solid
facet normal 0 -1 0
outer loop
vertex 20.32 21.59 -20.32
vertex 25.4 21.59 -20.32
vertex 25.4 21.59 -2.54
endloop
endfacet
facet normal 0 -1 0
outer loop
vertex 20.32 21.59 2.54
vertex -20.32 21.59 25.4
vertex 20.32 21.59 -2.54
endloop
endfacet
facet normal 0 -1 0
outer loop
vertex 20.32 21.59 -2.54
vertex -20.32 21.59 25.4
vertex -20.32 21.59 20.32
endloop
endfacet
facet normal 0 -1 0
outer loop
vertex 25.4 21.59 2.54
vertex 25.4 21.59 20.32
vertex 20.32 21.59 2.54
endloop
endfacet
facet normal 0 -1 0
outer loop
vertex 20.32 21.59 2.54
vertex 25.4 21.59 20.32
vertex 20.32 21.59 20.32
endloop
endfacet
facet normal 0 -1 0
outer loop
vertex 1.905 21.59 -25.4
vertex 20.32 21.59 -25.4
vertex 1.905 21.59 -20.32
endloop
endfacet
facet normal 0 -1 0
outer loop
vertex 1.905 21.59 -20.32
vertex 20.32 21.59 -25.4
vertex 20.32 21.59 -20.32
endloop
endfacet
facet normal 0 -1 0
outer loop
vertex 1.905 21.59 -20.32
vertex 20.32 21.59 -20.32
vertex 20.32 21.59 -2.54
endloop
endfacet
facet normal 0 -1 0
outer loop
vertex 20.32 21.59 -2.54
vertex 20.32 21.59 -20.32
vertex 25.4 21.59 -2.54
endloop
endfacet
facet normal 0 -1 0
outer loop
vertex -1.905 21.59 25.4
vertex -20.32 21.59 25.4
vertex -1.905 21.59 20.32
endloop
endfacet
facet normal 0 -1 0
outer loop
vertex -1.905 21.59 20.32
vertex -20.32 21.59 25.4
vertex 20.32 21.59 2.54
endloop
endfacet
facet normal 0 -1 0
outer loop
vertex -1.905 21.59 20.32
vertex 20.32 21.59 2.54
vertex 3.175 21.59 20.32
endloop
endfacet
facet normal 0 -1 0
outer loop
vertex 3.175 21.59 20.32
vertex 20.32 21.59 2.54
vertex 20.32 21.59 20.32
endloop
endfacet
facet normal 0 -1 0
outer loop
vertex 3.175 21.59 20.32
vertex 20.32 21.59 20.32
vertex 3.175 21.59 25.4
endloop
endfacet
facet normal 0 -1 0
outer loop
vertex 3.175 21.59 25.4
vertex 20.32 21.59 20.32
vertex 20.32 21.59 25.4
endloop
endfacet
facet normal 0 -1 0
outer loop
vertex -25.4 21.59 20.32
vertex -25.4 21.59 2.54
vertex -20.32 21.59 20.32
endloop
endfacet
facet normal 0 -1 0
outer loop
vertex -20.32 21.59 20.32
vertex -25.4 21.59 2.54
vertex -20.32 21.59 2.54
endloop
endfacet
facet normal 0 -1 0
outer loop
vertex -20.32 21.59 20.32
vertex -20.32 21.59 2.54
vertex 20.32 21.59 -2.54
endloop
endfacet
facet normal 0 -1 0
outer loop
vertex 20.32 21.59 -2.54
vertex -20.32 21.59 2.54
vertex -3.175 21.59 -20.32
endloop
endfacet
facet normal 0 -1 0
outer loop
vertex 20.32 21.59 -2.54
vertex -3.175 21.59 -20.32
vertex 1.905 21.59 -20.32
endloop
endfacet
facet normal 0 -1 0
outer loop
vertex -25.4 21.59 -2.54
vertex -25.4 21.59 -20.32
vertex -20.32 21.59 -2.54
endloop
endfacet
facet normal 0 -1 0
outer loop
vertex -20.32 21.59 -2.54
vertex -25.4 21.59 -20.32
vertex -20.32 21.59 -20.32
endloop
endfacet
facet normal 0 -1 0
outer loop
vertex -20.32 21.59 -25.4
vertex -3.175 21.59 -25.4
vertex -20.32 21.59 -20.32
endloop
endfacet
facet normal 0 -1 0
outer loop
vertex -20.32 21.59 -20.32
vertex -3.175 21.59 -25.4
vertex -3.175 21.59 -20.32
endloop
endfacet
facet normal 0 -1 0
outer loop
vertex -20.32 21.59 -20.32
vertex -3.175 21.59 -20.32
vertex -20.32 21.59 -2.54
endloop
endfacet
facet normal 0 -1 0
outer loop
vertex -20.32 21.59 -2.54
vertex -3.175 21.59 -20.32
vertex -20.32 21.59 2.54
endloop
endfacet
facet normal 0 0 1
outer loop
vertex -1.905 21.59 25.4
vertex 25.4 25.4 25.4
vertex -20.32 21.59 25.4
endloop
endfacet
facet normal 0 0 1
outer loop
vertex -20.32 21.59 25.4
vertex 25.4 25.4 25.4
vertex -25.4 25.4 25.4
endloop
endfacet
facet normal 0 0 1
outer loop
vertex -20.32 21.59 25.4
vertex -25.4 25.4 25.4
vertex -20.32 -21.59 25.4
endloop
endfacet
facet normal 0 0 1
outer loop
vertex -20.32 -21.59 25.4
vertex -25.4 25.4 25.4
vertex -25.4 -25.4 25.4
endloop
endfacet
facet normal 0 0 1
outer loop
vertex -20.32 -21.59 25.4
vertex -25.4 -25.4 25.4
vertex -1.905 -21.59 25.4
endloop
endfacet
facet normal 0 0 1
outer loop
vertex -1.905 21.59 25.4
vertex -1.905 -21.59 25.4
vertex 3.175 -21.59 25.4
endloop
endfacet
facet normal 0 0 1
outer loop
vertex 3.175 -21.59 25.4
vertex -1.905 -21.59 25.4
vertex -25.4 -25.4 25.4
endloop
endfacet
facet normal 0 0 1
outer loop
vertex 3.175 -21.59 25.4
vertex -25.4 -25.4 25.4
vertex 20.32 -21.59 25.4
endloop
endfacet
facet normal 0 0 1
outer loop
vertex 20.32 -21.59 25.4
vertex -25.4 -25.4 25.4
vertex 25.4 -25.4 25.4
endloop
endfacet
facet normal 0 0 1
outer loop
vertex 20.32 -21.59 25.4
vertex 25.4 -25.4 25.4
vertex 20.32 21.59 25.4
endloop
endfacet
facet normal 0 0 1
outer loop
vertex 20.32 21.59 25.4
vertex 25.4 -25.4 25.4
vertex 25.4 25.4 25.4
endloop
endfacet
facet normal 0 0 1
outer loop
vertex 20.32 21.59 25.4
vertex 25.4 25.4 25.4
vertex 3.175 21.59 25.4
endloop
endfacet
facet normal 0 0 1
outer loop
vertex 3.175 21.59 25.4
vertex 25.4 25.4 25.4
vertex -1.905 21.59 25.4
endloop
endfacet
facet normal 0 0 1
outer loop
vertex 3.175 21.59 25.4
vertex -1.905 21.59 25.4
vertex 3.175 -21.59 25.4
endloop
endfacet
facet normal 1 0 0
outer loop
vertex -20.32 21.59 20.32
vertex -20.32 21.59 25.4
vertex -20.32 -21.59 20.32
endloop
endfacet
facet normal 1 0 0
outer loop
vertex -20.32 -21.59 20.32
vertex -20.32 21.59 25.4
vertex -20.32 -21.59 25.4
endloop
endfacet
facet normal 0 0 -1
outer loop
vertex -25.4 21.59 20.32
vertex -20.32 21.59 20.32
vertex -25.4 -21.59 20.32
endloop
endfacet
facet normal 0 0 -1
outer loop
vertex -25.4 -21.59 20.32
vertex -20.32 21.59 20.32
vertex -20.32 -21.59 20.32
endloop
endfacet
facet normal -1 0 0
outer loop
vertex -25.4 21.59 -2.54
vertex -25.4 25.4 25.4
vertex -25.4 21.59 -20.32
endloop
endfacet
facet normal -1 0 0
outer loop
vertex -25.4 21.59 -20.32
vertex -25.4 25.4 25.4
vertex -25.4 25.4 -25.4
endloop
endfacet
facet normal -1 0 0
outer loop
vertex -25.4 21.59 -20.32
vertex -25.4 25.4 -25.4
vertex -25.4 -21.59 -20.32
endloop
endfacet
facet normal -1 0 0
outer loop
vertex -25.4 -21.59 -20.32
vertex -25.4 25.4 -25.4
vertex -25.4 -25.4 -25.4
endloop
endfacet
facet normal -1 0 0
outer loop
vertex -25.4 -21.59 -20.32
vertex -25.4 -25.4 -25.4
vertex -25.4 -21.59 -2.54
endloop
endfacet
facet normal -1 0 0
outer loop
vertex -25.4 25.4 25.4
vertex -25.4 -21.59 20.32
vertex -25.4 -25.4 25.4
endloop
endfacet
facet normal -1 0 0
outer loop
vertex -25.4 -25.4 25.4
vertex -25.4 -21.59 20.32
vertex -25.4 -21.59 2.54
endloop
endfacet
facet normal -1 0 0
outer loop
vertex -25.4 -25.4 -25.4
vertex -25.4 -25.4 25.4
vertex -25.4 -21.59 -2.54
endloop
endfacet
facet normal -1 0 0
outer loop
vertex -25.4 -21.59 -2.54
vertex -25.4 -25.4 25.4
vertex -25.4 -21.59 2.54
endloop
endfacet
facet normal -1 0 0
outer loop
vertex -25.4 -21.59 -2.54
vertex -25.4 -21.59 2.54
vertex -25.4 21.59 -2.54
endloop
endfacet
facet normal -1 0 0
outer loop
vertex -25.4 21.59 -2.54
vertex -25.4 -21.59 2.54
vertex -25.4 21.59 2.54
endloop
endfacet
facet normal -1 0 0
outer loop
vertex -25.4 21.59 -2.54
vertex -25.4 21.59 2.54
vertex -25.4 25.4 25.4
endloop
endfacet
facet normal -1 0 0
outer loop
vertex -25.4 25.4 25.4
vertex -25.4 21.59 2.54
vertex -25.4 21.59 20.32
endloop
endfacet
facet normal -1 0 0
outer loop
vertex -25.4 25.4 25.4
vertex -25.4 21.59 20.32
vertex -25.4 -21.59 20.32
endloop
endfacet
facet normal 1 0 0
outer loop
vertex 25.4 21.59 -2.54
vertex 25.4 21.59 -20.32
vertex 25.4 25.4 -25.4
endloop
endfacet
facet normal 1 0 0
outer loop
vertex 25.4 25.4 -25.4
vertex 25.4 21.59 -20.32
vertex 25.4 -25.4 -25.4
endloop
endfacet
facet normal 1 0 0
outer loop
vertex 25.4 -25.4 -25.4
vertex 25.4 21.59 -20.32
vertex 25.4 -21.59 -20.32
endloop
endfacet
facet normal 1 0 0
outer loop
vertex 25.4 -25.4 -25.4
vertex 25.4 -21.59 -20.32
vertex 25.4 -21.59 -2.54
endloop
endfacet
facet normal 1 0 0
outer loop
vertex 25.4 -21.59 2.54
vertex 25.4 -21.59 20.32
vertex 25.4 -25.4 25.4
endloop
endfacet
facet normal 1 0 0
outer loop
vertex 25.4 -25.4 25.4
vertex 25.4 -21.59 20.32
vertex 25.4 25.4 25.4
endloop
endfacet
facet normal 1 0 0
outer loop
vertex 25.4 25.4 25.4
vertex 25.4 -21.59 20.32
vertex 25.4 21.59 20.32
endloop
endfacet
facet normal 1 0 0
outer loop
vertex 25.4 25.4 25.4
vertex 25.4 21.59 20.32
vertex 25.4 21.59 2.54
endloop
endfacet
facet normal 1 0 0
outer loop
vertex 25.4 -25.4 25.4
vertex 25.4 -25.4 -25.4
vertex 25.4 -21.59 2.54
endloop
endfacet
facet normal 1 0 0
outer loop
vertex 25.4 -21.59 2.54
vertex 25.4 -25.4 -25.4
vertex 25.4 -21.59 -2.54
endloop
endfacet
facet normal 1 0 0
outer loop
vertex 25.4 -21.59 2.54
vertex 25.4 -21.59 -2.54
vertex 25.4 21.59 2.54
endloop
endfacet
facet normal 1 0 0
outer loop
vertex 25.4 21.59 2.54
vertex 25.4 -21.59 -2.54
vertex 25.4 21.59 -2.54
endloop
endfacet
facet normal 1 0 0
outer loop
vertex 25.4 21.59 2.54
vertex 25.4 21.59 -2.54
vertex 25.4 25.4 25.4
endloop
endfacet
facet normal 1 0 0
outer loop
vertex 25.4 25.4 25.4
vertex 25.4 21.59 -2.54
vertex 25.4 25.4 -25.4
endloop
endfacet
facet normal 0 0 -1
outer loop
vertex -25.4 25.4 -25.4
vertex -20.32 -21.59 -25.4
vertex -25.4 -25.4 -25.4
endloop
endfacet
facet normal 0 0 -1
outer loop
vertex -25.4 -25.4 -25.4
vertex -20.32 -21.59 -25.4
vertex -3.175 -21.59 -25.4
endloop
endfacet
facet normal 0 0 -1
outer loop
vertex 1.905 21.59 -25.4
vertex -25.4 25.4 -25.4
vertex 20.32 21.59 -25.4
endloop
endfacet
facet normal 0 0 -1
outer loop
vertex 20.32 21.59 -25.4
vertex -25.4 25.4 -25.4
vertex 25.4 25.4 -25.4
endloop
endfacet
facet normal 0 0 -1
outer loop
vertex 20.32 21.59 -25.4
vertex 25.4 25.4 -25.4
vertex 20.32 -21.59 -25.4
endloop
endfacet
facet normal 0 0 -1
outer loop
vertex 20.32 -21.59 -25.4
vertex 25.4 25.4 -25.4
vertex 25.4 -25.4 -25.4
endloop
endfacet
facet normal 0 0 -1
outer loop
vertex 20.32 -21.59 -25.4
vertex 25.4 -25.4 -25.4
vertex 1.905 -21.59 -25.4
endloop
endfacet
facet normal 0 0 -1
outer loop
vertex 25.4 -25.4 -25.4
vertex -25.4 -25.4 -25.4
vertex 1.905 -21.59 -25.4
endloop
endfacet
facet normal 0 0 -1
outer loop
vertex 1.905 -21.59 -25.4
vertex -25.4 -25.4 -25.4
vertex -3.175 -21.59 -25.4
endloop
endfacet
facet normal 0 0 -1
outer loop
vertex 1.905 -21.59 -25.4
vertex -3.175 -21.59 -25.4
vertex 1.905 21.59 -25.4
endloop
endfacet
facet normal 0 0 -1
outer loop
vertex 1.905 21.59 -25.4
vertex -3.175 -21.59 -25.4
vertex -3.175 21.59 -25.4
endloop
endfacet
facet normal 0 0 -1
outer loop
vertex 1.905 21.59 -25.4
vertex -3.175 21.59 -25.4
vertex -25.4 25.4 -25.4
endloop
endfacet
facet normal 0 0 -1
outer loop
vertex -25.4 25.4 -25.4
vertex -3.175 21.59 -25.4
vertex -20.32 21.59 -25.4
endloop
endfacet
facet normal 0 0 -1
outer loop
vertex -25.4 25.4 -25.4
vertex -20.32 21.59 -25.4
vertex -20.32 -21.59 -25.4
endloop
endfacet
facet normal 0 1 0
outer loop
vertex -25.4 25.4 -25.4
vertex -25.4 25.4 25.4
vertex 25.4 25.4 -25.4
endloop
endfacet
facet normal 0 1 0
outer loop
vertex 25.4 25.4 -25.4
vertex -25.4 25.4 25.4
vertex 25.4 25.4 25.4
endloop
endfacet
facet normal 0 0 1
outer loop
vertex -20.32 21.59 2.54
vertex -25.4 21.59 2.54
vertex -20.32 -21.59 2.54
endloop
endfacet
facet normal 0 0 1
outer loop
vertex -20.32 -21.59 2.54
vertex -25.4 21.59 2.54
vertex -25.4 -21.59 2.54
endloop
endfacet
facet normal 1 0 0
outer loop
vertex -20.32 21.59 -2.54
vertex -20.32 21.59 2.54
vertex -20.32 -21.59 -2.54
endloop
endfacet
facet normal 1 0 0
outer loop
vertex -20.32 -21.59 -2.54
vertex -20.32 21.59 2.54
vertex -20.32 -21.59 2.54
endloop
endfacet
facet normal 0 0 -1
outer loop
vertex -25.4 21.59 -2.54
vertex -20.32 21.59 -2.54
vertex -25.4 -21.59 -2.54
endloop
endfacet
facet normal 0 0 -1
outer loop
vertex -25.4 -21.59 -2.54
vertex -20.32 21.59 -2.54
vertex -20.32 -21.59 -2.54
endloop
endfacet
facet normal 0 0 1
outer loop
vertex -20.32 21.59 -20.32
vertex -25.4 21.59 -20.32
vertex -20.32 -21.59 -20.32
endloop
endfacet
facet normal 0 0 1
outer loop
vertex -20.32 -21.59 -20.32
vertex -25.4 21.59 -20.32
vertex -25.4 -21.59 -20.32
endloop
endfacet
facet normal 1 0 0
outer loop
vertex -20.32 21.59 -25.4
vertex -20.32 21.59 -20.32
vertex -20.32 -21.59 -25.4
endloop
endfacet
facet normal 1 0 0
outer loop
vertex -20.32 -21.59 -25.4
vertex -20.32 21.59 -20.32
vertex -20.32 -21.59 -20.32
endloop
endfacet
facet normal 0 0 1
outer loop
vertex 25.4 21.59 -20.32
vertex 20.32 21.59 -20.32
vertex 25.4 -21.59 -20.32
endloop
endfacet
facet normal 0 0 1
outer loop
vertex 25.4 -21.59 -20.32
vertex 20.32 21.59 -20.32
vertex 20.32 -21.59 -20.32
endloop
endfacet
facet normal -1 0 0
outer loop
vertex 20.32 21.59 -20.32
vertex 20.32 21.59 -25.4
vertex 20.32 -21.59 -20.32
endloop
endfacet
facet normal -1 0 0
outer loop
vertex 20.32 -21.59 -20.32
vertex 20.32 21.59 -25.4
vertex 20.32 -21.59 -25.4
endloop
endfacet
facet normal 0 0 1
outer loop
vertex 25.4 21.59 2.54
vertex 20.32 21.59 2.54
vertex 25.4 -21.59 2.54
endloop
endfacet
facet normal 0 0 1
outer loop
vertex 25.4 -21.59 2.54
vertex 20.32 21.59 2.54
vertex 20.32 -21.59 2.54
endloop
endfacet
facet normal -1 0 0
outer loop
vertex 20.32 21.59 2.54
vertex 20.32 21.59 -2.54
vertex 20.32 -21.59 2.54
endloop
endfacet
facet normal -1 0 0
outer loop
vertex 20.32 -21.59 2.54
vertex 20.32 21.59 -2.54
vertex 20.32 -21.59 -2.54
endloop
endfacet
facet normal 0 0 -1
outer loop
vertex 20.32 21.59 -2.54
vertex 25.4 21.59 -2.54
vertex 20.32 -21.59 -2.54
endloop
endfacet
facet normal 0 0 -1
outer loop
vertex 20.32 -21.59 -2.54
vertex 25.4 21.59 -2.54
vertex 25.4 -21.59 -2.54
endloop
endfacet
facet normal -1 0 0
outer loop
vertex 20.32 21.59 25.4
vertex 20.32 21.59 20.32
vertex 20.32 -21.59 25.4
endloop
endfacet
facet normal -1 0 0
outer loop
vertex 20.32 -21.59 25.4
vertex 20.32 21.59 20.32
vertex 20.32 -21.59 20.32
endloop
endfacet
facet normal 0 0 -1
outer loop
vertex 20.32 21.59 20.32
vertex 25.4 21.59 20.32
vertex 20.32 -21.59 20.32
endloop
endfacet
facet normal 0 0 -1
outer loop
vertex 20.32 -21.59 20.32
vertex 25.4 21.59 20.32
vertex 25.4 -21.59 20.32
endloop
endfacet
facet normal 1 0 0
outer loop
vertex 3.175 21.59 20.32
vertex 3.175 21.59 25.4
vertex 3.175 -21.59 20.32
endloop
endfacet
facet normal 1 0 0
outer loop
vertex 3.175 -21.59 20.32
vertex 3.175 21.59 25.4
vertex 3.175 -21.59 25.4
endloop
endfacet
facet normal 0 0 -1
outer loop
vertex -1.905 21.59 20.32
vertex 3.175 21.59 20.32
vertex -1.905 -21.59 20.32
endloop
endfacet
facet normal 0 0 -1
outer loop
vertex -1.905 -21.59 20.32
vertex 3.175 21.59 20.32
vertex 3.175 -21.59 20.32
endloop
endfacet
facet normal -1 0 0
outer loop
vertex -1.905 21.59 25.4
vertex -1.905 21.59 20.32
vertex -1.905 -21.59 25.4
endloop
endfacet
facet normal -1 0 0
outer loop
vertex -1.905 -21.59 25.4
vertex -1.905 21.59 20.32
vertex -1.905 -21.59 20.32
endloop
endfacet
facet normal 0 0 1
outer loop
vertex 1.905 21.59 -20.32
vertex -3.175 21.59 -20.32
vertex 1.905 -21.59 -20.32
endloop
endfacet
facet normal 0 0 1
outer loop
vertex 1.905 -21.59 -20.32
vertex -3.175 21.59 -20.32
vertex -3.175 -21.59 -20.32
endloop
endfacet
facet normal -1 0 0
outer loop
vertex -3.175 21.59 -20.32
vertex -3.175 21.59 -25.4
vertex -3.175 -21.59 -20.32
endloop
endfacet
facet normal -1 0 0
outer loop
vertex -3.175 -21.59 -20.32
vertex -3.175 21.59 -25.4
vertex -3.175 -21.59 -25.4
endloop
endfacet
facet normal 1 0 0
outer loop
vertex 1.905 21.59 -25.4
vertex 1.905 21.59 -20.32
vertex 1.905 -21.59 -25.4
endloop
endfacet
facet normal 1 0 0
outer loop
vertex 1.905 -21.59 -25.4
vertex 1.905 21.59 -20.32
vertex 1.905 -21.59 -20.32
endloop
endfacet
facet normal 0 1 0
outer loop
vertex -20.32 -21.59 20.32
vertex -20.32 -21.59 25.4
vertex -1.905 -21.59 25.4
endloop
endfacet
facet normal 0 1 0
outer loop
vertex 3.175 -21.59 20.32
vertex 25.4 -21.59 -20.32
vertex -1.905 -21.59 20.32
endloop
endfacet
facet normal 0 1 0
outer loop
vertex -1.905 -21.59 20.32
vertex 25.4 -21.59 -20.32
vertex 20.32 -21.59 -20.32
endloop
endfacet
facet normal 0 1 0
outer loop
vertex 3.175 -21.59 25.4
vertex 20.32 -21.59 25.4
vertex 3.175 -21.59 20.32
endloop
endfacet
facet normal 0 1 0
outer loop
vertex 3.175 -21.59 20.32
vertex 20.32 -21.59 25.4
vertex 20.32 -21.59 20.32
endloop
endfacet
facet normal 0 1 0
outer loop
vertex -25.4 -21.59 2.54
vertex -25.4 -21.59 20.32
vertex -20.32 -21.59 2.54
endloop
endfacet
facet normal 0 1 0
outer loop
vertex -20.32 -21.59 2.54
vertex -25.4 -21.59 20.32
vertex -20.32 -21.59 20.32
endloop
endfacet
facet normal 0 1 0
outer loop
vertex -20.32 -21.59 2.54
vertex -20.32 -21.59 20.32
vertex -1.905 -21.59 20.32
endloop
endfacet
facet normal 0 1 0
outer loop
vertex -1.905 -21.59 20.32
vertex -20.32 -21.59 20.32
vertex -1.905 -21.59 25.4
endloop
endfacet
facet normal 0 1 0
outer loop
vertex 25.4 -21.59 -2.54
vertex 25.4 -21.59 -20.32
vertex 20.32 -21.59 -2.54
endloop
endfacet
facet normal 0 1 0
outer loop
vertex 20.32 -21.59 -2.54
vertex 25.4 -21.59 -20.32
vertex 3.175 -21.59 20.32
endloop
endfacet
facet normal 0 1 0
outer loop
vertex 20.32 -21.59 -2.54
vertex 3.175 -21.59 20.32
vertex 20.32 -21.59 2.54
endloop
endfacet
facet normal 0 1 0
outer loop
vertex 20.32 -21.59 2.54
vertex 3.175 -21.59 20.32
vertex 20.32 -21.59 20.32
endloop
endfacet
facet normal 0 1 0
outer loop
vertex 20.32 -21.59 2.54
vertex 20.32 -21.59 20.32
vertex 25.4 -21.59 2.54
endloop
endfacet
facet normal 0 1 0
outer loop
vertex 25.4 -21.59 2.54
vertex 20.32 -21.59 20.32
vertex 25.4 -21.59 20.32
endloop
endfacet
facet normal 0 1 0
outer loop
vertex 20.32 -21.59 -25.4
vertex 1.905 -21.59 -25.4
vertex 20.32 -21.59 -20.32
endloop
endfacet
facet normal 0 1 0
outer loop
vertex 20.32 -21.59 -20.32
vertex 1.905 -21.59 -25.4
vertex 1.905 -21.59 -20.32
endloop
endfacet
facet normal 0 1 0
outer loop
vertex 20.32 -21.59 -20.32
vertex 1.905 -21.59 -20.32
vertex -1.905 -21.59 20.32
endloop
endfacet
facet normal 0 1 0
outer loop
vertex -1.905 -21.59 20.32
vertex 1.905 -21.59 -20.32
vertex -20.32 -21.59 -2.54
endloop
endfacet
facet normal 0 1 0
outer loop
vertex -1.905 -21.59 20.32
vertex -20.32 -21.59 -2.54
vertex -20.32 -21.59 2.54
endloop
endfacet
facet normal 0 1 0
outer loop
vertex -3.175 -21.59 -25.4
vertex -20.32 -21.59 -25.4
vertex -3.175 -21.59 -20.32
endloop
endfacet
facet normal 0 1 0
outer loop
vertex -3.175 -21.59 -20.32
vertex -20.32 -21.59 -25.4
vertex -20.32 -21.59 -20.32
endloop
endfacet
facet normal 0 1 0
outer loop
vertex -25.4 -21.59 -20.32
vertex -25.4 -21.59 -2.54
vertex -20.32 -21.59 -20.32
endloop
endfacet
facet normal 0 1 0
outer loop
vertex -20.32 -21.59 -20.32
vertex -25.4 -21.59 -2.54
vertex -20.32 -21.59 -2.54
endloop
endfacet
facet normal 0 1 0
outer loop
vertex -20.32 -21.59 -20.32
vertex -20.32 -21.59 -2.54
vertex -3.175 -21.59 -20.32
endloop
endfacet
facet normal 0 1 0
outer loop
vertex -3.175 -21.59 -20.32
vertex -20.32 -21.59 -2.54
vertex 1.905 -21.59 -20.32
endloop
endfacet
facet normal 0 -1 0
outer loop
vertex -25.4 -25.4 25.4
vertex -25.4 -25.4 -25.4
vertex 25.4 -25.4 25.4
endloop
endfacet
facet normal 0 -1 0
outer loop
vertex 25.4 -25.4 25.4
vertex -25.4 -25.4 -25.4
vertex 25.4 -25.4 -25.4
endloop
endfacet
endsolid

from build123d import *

# Parameters (mm, degrees)
SKETCH1_W           = 5.08
SKETCH1_H           = 5.08
BOSS_EXTRUDE1_DEPTH = 21.59
LPATTERN2_COUNT     = 3
LPATTERN2_PITCH     = 22.86
LPATTERN3_COUNT     = 2
LPATTERN3_PITCH     = 23.495
LPATTERN4_COUNT     = 2
LPATTERN4_PITCH     = 23.495
SKETCH2_W           = 50.8
SKETCH2_H           = 50.8
BOSS_EXTRUDE3_DEPTH = 3.81
SKETCH3_W           = 50.8
SKETCH3_H           = 50.8
BOSS_EXTRUDE4_DEPTH = 3.81


with BuildPart() as part:
    # Sketch1 → Boss-Extrude1 (new body, symmetric)
    with BuildSketch(Plane(origin=(0, 0, 0), x_dir=(1, 0, 0), z_dir=(0, 1, 0))):
        with Locations((-22.86, -22.86)):
            Rectangle(SKETCH1_W, SKETCH1_H)
    extrude(amount=BOSS_EXTRUDE1_DEPTH, both=True)


with BuildPart() as lpattern2_1:
    # LPattern2: pattern copy
    add(part.part.moved(Location(Vector(0, 0, -1) * (1 * LPATTERN2_PITCH))))


with BuildPart() as lpattern2_2:
    # LPattern2: pattern copy
    add(part.part.moved(Location(Vector(0, 0, -1) * (2 * LPATTERN2_PITCH))))


with BuildPart() as body_4:
    # Mirror1: mirrored copy
    add(lpattern2_2.part.mirror(Plane(origin=(0, 0, 0), x_dir=(0, 0, 1), z_dir=(1, 0, 0))))


with BuildPart() as body_5:
    # Mirror1 2: mirrored copy
    add(lpattern2_1.part.mirror(Plane(origin=(0, 0, 0), x_dir=(0, 0, 1), z_dir=(1, 0, 0))))


with BuildPart() as body_6:
    # Mirror1 3: mirrored copy
    add(part.part.mirror(Plane(origin=(0, 0, 0), x_dir=(0, 0, 1), z_dir=(1, 0, 0))))


with BuildPart() as lpattern3_1:
    # LPattern3: pattern copy
    add(part.part.moved(Location(Vector(1, 0, 0) * (1 * LPATTERN3_PITCH))))


with BuildPart() as lpattern4_1:
    # LPattern4: pattern copy
    add(body_4.part.moved(Location(Vector(-1, 0, 0) * (1 * LPATTERN4_PITCH))))


with BuildPart() as part_1:
    add(part.part)

    add(lpattern2_1.part)  # Boss-Extrude3 merges LPattern2_1

    add(lpattern2_2.part)  # Boss-Extrude3 merges LPattern2_2

    add(body_4.part)  # Boss-Extrude3 merges body 4

    add(body_5.part)  # Boss-Extrude3 merges body 5

    add(body_6.part)  # Boss-Extrude3 merges body 6

    add(lpattern3_1.part)  # Boss-Extrude3 merges LPattern3_1

    add(lpattern4_1.part)  # Boss-Extrude3 merges LPattern4_1
    # Sketch2 → Boss-Extrude3 (add)
    with BuildSketch(Plane(origin=(0, 21.59, 0), x_dir=(1, 0, 0), z_dir=(0, 1, 0))):
        Rectangle(SKETCH2_W, SKETCH2_H)
    extrude(amount=BOSS_EXTRUDE3_DEPTH)

    # Sketch3 → Boss-Extrude4 (add)
    with BuildSketch(Plane.XZ.offset(21.59)):
        Rectangle(SKETCH3_W, SKETCH3_H)
    extrude(amount=BOSS_EXTRUDE4_DEPTH)


solid = part_1.part
